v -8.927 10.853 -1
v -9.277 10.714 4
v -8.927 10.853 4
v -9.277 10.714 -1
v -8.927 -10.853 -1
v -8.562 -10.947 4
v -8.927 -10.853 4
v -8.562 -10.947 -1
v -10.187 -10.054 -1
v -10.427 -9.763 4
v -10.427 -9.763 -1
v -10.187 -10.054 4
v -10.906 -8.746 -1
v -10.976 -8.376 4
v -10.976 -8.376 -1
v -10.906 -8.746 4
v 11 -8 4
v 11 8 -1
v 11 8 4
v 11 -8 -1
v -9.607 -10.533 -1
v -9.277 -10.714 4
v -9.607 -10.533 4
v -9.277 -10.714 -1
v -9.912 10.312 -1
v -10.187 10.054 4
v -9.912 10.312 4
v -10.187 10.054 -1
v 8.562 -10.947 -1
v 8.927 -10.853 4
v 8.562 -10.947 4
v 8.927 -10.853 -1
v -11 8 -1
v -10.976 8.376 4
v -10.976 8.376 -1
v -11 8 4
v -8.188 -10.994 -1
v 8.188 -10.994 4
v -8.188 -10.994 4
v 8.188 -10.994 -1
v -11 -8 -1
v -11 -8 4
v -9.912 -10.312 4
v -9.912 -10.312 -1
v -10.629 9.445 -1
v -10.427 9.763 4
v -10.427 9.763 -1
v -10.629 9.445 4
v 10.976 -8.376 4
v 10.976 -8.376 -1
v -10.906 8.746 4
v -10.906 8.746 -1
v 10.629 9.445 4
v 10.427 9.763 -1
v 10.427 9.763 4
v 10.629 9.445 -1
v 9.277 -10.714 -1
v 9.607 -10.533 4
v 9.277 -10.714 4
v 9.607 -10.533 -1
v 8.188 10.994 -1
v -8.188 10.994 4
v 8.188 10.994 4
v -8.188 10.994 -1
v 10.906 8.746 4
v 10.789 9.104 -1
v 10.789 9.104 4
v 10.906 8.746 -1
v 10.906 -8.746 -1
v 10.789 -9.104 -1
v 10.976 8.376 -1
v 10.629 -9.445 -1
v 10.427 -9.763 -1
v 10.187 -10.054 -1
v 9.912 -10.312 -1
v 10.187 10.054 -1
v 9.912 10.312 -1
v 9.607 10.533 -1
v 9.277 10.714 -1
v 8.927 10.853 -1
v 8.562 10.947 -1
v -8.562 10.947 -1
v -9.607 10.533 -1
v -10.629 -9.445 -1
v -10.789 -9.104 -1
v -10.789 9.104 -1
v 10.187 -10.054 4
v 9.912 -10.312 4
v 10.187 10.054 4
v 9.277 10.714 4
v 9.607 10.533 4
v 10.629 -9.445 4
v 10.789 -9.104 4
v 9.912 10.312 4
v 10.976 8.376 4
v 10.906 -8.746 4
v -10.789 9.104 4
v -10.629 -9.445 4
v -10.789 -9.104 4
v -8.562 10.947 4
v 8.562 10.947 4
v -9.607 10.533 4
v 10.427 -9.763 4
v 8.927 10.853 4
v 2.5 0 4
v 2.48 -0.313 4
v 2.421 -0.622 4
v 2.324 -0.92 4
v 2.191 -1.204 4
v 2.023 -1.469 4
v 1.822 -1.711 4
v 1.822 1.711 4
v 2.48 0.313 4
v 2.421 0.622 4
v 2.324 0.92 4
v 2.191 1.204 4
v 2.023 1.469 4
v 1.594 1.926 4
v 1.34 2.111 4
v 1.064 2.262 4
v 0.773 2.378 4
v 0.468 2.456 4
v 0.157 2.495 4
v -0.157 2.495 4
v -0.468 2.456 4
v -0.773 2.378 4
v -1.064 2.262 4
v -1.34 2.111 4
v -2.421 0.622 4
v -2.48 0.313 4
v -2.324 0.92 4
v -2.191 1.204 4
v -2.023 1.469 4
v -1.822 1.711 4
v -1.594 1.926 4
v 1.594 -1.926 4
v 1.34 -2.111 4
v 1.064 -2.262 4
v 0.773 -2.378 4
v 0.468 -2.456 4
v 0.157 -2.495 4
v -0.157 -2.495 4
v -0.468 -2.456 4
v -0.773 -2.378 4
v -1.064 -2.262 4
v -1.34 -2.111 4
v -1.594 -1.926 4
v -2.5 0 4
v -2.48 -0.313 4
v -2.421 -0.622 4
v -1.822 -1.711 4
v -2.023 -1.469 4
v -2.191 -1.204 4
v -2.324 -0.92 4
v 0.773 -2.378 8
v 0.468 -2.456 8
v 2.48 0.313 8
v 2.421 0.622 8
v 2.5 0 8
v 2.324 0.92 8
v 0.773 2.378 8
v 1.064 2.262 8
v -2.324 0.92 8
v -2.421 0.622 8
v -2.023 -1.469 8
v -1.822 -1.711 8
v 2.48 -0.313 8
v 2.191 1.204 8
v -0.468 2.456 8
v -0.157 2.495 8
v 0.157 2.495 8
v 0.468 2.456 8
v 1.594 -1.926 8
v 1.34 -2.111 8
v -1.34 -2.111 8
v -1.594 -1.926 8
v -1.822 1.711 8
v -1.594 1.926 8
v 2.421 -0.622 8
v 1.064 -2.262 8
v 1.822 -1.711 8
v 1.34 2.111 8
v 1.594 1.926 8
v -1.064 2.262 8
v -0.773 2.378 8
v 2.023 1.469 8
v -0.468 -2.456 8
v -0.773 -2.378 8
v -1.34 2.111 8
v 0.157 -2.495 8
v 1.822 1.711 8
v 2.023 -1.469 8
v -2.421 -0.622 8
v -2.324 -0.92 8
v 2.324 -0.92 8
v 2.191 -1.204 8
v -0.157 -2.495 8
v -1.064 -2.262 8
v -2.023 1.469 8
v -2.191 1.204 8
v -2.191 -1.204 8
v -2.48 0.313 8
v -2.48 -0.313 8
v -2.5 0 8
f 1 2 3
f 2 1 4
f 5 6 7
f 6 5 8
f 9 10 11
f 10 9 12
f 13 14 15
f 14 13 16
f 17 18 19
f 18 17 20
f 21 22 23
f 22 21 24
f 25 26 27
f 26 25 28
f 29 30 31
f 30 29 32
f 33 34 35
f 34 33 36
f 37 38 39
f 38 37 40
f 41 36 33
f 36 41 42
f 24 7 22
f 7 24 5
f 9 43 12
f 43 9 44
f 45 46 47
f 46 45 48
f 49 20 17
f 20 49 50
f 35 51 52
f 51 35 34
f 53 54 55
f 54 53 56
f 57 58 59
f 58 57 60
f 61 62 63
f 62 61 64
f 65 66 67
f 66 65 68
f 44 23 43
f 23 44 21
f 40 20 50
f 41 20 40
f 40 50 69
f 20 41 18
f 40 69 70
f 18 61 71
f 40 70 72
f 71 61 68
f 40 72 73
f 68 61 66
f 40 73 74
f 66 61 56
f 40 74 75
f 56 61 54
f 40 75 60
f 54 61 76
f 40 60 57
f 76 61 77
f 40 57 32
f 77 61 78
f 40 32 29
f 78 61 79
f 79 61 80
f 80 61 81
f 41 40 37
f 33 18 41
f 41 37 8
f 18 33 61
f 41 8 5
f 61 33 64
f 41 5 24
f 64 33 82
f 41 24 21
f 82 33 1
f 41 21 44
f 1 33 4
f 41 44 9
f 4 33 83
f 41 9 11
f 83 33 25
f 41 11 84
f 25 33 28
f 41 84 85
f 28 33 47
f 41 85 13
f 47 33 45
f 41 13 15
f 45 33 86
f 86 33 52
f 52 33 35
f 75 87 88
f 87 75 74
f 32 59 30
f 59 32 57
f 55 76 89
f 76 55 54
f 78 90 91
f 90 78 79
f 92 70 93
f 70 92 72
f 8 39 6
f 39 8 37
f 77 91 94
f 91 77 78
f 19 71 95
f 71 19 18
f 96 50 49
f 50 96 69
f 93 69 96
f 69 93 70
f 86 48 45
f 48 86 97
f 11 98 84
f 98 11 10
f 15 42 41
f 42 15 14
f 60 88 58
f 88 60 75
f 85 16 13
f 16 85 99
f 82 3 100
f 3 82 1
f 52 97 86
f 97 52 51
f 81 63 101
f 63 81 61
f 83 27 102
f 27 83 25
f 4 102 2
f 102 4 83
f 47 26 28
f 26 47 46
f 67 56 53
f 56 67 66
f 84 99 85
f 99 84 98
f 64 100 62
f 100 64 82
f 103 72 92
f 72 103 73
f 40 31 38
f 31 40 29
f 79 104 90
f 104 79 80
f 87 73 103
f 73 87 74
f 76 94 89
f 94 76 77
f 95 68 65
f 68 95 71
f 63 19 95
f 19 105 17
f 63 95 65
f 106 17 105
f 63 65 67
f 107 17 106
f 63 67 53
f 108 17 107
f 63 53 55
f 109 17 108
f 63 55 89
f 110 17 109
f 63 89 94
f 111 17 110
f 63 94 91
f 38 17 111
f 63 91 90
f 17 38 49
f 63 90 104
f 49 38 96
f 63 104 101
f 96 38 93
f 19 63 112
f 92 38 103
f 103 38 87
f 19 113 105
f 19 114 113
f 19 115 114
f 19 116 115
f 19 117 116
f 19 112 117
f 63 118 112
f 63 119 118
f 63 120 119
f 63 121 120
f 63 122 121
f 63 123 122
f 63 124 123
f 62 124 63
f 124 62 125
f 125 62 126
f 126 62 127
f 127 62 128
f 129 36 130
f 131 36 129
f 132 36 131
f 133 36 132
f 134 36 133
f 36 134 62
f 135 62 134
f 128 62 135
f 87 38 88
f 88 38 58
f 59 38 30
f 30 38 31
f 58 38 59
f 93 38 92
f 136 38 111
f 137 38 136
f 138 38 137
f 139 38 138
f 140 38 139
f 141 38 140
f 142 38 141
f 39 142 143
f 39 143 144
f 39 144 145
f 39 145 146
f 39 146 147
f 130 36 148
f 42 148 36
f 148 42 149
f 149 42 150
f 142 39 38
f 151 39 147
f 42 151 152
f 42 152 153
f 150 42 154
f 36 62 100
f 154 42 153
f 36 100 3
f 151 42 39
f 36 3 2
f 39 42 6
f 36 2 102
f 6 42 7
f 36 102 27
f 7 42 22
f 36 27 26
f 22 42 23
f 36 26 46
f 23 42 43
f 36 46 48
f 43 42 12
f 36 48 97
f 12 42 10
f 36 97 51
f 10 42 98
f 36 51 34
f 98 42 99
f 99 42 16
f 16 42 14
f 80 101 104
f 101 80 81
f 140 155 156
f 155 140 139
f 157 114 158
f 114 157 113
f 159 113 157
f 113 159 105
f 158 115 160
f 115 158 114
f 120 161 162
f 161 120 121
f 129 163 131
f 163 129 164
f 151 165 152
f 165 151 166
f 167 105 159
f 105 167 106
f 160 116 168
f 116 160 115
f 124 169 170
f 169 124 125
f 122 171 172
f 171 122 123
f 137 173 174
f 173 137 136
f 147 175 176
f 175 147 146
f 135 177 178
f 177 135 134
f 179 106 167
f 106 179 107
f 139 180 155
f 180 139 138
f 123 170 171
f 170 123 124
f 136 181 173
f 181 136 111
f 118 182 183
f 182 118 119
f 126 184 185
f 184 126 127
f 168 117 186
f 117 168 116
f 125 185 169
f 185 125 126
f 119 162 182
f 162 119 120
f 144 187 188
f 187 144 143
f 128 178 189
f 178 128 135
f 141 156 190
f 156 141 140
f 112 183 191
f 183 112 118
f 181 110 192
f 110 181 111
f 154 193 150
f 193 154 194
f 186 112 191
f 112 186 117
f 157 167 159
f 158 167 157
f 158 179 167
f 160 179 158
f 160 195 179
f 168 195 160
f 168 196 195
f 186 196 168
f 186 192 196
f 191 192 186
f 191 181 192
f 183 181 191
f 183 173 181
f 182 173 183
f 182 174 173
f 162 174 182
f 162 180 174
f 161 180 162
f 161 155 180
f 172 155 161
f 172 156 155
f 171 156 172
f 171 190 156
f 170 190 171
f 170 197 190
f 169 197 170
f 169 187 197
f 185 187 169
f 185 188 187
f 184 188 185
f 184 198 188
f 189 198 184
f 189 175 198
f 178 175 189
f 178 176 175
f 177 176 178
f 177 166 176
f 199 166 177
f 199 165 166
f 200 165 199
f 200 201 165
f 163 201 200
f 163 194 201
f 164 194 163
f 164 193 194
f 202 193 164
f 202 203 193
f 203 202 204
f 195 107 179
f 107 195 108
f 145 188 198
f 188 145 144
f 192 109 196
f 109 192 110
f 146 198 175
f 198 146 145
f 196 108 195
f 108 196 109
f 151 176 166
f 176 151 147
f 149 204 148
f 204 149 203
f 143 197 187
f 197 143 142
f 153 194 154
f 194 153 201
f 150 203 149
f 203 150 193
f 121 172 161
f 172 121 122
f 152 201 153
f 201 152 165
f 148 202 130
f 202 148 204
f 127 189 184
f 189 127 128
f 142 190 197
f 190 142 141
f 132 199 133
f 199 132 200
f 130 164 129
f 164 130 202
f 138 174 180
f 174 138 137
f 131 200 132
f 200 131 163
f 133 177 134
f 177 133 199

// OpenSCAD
 // CSG.scad - Basic example of CSG usage

$fn=50;

minkowski() {
    cube([16,16, 2], true);
    cylinder(r=3,h=3);
}


cylinder(h=8, d=5, center=false);
